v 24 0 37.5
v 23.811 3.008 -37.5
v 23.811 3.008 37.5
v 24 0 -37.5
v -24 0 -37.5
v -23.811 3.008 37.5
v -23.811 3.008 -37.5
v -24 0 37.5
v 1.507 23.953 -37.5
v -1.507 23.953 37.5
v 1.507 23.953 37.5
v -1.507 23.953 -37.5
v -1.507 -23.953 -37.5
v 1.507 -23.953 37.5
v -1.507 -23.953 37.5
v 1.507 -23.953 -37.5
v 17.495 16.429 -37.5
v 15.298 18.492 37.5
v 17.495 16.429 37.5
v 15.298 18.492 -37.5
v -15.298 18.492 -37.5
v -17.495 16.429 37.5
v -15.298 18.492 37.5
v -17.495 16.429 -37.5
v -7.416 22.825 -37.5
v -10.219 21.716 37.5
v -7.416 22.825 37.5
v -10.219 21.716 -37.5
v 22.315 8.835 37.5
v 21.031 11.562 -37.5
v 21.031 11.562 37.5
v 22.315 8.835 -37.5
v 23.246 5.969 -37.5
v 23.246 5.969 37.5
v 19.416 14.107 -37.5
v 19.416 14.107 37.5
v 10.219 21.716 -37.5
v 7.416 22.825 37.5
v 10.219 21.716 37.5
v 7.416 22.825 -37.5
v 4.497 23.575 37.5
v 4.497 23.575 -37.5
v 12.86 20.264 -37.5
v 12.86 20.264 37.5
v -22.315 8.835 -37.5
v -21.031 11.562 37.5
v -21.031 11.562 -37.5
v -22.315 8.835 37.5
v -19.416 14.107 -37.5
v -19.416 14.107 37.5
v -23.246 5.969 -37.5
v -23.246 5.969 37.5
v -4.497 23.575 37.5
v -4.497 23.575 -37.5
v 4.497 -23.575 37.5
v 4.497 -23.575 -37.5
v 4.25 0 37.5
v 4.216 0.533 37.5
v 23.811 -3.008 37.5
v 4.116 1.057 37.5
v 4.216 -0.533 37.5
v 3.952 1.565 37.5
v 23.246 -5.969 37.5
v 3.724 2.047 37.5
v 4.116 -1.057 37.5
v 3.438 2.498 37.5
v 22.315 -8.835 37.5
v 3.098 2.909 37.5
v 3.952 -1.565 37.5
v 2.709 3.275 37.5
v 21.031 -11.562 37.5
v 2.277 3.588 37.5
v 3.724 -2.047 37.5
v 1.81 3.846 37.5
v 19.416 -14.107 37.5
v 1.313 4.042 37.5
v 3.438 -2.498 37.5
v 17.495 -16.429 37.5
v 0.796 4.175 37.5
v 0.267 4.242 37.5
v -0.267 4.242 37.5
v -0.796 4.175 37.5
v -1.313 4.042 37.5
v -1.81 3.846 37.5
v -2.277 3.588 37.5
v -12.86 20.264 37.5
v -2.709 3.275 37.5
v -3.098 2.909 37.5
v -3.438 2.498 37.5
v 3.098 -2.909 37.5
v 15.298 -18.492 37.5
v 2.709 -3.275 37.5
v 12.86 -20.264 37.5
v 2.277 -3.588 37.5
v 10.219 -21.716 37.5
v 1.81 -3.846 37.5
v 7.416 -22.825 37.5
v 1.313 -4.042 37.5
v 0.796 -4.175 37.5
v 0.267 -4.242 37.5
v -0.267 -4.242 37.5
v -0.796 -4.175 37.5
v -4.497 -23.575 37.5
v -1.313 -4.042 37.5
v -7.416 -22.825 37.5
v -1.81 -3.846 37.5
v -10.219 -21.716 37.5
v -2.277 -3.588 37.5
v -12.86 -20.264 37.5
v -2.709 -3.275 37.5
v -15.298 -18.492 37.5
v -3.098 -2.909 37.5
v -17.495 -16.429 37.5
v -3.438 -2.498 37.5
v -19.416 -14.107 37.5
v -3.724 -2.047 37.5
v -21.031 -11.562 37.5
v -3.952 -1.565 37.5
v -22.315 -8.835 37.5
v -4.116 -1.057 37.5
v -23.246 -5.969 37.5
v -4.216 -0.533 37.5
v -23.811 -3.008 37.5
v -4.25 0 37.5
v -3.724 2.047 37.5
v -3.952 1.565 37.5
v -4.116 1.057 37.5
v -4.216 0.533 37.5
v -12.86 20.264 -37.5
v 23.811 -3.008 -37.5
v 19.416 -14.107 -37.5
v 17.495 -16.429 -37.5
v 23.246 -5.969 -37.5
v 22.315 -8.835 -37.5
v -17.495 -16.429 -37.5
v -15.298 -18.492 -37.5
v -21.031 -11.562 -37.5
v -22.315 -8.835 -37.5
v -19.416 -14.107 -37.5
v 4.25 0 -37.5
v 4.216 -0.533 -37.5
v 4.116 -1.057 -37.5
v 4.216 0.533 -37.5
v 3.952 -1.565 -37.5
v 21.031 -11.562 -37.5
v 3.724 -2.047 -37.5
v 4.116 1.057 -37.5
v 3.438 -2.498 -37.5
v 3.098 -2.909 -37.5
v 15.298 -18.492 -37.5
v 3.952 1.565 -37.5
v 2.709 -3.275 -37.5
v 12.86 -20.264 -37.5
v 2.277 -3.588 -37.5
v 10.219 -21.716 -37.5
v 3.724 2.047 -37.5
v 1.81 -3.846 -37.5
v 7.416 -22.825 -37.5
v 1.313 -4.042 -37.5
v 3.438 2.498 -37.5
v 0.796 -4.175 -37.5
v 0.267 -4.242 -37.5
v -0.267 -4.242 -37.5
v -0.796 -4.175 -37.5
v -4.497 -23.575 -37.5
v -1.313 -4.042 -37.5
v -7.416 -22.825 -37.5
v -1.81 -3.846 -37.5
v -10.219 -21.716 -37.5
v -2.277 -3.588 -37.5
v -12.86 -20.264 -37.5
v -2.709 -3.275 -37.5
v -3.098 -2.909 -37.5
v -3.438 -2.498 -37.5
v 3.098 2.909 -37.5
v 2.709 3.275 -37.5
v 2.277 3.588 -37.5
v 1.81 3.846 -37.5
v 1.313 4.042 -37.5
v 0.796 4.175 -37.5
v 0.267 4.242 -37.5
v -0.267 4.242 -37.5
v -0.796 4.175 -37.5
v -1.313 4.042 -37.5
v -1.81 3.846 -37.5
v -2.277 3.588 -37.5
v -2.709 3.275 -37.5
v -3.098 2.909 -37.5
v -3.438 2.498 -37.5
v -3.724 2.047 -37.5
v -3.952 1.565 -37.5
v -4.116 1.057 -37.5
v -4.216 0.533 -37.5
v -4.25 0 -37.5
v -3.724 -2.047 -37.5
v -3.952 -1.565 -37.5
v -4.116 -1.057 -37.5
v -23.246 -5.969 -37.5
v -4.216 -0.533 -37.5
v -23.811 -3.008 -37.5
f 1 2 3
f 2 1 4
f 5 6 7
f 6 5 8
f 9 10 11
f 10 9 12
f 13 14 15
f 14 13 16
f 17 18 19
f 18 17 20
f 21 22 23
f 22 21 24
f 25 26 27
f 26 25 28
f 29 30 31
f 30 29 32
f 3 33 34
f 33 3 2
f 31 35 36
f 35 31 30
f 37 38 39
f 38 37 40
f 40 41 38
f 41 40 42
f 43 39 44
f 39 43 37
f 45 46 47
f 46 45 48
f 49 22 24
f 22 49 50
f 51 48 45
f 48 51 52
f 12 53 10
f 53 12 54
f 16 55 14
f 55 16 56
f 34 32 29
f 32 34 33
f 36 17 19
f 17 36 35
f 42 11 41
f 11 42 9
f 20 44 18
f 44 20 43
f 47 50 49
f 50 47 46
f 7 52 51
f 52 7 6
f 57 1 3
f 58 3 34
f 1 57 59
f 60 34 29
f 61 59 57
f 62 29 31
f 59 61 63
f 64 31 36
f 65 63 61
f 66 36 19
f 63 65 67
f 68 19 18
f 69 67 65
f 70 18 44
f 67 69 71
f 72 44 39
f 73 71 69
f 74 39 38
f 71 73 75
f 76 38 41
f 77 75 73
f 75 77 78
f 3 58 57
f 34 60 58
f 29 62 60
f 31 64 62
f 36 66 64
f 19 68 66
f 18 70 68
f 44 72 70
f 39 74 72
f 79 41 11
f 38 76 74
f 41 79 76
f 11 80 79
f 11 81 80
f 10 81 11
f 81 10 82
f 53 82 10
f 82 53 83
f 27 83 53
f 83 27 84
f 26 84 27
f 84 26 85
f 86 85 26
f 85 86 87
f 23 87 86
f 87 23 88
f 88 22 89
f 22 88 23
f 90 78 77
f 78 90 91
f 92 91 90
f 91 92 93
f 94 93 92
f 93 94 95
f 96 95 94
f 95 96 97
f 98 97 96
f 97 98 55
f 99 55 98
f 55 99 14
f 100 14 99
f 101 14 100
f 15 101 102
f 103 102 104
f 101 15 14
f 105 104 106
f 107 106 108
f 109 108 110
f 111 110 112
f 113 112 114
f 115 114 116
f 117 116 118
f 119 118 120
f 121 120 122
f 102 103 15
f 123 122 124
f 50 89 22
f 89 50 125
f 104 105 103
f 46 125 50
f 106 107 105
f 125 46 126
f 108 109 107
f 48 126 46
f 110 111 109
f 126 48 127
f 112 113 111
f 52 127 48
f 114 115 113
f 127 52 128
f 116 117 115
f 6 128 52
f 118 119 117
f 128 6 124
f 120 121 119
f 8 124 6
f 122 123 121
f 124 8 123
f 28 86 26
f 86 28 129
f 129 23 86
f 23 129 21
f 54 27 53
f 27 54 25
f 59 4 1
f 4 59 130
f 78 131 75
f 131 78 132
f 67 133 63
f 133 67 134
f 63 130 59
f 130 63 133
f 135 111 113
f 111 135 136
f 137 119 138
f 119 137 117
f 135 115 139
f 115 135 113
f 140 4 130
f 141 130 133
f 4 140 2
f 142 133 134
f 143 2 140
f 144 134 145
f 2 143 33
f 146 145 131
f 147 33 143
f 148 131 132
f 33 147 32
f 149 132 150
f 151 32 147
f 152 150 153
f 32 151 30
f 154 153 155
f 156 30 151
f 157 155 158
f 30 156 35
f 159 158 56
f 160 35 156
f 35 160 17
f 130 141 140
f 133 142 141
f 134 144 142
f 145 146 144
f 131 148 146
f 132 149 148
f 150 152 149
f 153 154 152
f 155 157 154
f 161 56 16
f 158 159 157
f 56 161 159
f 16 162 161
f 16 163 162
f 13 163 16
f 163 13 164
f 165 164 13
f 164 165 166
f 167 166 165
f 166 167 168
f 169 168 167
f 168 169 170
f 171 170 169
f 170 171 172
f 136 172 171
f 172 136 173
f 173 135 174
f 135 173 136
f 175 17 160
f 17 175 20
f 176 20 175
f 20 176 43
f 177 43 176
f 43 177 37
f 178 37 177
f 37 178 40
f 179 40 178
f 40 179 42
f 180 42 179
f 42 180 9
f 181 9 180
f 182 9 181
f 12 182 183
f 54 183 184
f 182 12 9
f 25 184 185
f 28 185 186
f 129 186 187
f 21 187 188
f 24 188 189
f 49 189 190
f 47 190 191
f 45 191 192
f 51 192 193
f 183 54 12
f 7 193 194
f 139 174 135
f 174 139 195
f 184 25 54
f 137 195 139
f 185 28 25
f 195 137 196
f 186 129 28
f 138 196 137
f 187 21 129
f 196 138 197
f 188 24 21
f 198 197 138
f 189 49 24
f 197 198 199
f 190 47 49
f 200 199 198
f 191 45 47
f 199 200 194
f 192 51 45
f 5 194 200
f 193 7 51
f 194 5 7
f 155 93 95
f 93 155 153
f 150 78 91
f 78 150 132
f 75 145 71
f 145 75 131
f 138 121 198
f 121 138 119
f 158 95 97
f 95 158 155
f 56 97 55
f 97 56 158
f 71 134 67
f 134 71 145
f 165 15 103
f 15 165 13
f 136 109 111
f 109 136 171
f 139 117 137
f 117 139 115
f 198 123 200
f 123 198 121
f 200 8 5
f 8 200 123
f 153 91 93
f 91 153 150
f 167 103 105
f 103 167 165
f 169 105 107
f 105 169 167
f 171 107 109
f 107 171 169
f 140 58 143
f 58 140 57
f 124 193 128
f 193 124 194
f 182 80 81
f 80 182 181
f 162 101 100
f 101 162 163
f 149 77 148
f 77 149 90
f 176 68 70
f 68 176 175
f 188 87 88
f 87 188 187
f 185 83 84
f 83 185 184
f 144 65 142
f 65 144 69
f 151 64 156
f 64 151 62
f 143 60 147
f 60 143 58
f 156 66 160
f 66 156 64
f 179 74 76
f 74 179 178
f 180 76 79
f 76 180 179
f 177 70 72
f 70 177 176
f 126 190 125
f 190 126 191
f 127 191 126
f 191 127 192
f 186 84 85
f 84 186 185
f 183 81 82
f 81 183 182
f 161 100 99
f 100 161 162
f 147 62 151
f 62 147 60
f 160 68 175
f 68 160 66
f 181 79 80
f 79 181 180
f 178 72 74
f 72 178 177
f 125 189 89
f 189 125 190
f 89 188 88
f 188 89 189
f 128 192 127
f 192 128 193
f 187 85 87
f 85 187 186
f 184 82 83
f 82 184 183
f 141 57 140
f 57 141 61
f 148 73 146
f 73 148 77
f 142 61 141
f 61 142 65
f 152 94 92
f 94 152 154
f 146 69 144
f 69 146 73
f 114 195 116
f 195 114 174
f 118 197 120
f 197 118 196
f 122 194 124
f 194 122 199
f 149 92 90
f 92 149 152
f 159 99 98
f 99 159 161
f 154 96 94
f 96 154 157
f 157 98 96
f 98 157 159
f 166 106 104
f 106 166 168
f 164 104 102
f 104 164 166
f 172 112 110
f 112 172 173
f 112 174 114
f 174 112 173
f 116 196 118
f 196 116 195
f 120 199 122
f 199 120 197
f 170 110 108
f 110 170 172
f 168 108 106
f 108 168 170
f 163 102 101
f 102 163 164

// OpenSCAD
$fn = 50;


difference() {
	union() {
		translate(v = [0, 0, -37.5000000000]) {
			cylinder(h = 75, r = 24.0000000000);
		}
	}
	union() {
		translate(v = [0, 0, -100.0000000000]) {
			cylinder(h = 200, r = 4.2500000000);
		}
	}
}
